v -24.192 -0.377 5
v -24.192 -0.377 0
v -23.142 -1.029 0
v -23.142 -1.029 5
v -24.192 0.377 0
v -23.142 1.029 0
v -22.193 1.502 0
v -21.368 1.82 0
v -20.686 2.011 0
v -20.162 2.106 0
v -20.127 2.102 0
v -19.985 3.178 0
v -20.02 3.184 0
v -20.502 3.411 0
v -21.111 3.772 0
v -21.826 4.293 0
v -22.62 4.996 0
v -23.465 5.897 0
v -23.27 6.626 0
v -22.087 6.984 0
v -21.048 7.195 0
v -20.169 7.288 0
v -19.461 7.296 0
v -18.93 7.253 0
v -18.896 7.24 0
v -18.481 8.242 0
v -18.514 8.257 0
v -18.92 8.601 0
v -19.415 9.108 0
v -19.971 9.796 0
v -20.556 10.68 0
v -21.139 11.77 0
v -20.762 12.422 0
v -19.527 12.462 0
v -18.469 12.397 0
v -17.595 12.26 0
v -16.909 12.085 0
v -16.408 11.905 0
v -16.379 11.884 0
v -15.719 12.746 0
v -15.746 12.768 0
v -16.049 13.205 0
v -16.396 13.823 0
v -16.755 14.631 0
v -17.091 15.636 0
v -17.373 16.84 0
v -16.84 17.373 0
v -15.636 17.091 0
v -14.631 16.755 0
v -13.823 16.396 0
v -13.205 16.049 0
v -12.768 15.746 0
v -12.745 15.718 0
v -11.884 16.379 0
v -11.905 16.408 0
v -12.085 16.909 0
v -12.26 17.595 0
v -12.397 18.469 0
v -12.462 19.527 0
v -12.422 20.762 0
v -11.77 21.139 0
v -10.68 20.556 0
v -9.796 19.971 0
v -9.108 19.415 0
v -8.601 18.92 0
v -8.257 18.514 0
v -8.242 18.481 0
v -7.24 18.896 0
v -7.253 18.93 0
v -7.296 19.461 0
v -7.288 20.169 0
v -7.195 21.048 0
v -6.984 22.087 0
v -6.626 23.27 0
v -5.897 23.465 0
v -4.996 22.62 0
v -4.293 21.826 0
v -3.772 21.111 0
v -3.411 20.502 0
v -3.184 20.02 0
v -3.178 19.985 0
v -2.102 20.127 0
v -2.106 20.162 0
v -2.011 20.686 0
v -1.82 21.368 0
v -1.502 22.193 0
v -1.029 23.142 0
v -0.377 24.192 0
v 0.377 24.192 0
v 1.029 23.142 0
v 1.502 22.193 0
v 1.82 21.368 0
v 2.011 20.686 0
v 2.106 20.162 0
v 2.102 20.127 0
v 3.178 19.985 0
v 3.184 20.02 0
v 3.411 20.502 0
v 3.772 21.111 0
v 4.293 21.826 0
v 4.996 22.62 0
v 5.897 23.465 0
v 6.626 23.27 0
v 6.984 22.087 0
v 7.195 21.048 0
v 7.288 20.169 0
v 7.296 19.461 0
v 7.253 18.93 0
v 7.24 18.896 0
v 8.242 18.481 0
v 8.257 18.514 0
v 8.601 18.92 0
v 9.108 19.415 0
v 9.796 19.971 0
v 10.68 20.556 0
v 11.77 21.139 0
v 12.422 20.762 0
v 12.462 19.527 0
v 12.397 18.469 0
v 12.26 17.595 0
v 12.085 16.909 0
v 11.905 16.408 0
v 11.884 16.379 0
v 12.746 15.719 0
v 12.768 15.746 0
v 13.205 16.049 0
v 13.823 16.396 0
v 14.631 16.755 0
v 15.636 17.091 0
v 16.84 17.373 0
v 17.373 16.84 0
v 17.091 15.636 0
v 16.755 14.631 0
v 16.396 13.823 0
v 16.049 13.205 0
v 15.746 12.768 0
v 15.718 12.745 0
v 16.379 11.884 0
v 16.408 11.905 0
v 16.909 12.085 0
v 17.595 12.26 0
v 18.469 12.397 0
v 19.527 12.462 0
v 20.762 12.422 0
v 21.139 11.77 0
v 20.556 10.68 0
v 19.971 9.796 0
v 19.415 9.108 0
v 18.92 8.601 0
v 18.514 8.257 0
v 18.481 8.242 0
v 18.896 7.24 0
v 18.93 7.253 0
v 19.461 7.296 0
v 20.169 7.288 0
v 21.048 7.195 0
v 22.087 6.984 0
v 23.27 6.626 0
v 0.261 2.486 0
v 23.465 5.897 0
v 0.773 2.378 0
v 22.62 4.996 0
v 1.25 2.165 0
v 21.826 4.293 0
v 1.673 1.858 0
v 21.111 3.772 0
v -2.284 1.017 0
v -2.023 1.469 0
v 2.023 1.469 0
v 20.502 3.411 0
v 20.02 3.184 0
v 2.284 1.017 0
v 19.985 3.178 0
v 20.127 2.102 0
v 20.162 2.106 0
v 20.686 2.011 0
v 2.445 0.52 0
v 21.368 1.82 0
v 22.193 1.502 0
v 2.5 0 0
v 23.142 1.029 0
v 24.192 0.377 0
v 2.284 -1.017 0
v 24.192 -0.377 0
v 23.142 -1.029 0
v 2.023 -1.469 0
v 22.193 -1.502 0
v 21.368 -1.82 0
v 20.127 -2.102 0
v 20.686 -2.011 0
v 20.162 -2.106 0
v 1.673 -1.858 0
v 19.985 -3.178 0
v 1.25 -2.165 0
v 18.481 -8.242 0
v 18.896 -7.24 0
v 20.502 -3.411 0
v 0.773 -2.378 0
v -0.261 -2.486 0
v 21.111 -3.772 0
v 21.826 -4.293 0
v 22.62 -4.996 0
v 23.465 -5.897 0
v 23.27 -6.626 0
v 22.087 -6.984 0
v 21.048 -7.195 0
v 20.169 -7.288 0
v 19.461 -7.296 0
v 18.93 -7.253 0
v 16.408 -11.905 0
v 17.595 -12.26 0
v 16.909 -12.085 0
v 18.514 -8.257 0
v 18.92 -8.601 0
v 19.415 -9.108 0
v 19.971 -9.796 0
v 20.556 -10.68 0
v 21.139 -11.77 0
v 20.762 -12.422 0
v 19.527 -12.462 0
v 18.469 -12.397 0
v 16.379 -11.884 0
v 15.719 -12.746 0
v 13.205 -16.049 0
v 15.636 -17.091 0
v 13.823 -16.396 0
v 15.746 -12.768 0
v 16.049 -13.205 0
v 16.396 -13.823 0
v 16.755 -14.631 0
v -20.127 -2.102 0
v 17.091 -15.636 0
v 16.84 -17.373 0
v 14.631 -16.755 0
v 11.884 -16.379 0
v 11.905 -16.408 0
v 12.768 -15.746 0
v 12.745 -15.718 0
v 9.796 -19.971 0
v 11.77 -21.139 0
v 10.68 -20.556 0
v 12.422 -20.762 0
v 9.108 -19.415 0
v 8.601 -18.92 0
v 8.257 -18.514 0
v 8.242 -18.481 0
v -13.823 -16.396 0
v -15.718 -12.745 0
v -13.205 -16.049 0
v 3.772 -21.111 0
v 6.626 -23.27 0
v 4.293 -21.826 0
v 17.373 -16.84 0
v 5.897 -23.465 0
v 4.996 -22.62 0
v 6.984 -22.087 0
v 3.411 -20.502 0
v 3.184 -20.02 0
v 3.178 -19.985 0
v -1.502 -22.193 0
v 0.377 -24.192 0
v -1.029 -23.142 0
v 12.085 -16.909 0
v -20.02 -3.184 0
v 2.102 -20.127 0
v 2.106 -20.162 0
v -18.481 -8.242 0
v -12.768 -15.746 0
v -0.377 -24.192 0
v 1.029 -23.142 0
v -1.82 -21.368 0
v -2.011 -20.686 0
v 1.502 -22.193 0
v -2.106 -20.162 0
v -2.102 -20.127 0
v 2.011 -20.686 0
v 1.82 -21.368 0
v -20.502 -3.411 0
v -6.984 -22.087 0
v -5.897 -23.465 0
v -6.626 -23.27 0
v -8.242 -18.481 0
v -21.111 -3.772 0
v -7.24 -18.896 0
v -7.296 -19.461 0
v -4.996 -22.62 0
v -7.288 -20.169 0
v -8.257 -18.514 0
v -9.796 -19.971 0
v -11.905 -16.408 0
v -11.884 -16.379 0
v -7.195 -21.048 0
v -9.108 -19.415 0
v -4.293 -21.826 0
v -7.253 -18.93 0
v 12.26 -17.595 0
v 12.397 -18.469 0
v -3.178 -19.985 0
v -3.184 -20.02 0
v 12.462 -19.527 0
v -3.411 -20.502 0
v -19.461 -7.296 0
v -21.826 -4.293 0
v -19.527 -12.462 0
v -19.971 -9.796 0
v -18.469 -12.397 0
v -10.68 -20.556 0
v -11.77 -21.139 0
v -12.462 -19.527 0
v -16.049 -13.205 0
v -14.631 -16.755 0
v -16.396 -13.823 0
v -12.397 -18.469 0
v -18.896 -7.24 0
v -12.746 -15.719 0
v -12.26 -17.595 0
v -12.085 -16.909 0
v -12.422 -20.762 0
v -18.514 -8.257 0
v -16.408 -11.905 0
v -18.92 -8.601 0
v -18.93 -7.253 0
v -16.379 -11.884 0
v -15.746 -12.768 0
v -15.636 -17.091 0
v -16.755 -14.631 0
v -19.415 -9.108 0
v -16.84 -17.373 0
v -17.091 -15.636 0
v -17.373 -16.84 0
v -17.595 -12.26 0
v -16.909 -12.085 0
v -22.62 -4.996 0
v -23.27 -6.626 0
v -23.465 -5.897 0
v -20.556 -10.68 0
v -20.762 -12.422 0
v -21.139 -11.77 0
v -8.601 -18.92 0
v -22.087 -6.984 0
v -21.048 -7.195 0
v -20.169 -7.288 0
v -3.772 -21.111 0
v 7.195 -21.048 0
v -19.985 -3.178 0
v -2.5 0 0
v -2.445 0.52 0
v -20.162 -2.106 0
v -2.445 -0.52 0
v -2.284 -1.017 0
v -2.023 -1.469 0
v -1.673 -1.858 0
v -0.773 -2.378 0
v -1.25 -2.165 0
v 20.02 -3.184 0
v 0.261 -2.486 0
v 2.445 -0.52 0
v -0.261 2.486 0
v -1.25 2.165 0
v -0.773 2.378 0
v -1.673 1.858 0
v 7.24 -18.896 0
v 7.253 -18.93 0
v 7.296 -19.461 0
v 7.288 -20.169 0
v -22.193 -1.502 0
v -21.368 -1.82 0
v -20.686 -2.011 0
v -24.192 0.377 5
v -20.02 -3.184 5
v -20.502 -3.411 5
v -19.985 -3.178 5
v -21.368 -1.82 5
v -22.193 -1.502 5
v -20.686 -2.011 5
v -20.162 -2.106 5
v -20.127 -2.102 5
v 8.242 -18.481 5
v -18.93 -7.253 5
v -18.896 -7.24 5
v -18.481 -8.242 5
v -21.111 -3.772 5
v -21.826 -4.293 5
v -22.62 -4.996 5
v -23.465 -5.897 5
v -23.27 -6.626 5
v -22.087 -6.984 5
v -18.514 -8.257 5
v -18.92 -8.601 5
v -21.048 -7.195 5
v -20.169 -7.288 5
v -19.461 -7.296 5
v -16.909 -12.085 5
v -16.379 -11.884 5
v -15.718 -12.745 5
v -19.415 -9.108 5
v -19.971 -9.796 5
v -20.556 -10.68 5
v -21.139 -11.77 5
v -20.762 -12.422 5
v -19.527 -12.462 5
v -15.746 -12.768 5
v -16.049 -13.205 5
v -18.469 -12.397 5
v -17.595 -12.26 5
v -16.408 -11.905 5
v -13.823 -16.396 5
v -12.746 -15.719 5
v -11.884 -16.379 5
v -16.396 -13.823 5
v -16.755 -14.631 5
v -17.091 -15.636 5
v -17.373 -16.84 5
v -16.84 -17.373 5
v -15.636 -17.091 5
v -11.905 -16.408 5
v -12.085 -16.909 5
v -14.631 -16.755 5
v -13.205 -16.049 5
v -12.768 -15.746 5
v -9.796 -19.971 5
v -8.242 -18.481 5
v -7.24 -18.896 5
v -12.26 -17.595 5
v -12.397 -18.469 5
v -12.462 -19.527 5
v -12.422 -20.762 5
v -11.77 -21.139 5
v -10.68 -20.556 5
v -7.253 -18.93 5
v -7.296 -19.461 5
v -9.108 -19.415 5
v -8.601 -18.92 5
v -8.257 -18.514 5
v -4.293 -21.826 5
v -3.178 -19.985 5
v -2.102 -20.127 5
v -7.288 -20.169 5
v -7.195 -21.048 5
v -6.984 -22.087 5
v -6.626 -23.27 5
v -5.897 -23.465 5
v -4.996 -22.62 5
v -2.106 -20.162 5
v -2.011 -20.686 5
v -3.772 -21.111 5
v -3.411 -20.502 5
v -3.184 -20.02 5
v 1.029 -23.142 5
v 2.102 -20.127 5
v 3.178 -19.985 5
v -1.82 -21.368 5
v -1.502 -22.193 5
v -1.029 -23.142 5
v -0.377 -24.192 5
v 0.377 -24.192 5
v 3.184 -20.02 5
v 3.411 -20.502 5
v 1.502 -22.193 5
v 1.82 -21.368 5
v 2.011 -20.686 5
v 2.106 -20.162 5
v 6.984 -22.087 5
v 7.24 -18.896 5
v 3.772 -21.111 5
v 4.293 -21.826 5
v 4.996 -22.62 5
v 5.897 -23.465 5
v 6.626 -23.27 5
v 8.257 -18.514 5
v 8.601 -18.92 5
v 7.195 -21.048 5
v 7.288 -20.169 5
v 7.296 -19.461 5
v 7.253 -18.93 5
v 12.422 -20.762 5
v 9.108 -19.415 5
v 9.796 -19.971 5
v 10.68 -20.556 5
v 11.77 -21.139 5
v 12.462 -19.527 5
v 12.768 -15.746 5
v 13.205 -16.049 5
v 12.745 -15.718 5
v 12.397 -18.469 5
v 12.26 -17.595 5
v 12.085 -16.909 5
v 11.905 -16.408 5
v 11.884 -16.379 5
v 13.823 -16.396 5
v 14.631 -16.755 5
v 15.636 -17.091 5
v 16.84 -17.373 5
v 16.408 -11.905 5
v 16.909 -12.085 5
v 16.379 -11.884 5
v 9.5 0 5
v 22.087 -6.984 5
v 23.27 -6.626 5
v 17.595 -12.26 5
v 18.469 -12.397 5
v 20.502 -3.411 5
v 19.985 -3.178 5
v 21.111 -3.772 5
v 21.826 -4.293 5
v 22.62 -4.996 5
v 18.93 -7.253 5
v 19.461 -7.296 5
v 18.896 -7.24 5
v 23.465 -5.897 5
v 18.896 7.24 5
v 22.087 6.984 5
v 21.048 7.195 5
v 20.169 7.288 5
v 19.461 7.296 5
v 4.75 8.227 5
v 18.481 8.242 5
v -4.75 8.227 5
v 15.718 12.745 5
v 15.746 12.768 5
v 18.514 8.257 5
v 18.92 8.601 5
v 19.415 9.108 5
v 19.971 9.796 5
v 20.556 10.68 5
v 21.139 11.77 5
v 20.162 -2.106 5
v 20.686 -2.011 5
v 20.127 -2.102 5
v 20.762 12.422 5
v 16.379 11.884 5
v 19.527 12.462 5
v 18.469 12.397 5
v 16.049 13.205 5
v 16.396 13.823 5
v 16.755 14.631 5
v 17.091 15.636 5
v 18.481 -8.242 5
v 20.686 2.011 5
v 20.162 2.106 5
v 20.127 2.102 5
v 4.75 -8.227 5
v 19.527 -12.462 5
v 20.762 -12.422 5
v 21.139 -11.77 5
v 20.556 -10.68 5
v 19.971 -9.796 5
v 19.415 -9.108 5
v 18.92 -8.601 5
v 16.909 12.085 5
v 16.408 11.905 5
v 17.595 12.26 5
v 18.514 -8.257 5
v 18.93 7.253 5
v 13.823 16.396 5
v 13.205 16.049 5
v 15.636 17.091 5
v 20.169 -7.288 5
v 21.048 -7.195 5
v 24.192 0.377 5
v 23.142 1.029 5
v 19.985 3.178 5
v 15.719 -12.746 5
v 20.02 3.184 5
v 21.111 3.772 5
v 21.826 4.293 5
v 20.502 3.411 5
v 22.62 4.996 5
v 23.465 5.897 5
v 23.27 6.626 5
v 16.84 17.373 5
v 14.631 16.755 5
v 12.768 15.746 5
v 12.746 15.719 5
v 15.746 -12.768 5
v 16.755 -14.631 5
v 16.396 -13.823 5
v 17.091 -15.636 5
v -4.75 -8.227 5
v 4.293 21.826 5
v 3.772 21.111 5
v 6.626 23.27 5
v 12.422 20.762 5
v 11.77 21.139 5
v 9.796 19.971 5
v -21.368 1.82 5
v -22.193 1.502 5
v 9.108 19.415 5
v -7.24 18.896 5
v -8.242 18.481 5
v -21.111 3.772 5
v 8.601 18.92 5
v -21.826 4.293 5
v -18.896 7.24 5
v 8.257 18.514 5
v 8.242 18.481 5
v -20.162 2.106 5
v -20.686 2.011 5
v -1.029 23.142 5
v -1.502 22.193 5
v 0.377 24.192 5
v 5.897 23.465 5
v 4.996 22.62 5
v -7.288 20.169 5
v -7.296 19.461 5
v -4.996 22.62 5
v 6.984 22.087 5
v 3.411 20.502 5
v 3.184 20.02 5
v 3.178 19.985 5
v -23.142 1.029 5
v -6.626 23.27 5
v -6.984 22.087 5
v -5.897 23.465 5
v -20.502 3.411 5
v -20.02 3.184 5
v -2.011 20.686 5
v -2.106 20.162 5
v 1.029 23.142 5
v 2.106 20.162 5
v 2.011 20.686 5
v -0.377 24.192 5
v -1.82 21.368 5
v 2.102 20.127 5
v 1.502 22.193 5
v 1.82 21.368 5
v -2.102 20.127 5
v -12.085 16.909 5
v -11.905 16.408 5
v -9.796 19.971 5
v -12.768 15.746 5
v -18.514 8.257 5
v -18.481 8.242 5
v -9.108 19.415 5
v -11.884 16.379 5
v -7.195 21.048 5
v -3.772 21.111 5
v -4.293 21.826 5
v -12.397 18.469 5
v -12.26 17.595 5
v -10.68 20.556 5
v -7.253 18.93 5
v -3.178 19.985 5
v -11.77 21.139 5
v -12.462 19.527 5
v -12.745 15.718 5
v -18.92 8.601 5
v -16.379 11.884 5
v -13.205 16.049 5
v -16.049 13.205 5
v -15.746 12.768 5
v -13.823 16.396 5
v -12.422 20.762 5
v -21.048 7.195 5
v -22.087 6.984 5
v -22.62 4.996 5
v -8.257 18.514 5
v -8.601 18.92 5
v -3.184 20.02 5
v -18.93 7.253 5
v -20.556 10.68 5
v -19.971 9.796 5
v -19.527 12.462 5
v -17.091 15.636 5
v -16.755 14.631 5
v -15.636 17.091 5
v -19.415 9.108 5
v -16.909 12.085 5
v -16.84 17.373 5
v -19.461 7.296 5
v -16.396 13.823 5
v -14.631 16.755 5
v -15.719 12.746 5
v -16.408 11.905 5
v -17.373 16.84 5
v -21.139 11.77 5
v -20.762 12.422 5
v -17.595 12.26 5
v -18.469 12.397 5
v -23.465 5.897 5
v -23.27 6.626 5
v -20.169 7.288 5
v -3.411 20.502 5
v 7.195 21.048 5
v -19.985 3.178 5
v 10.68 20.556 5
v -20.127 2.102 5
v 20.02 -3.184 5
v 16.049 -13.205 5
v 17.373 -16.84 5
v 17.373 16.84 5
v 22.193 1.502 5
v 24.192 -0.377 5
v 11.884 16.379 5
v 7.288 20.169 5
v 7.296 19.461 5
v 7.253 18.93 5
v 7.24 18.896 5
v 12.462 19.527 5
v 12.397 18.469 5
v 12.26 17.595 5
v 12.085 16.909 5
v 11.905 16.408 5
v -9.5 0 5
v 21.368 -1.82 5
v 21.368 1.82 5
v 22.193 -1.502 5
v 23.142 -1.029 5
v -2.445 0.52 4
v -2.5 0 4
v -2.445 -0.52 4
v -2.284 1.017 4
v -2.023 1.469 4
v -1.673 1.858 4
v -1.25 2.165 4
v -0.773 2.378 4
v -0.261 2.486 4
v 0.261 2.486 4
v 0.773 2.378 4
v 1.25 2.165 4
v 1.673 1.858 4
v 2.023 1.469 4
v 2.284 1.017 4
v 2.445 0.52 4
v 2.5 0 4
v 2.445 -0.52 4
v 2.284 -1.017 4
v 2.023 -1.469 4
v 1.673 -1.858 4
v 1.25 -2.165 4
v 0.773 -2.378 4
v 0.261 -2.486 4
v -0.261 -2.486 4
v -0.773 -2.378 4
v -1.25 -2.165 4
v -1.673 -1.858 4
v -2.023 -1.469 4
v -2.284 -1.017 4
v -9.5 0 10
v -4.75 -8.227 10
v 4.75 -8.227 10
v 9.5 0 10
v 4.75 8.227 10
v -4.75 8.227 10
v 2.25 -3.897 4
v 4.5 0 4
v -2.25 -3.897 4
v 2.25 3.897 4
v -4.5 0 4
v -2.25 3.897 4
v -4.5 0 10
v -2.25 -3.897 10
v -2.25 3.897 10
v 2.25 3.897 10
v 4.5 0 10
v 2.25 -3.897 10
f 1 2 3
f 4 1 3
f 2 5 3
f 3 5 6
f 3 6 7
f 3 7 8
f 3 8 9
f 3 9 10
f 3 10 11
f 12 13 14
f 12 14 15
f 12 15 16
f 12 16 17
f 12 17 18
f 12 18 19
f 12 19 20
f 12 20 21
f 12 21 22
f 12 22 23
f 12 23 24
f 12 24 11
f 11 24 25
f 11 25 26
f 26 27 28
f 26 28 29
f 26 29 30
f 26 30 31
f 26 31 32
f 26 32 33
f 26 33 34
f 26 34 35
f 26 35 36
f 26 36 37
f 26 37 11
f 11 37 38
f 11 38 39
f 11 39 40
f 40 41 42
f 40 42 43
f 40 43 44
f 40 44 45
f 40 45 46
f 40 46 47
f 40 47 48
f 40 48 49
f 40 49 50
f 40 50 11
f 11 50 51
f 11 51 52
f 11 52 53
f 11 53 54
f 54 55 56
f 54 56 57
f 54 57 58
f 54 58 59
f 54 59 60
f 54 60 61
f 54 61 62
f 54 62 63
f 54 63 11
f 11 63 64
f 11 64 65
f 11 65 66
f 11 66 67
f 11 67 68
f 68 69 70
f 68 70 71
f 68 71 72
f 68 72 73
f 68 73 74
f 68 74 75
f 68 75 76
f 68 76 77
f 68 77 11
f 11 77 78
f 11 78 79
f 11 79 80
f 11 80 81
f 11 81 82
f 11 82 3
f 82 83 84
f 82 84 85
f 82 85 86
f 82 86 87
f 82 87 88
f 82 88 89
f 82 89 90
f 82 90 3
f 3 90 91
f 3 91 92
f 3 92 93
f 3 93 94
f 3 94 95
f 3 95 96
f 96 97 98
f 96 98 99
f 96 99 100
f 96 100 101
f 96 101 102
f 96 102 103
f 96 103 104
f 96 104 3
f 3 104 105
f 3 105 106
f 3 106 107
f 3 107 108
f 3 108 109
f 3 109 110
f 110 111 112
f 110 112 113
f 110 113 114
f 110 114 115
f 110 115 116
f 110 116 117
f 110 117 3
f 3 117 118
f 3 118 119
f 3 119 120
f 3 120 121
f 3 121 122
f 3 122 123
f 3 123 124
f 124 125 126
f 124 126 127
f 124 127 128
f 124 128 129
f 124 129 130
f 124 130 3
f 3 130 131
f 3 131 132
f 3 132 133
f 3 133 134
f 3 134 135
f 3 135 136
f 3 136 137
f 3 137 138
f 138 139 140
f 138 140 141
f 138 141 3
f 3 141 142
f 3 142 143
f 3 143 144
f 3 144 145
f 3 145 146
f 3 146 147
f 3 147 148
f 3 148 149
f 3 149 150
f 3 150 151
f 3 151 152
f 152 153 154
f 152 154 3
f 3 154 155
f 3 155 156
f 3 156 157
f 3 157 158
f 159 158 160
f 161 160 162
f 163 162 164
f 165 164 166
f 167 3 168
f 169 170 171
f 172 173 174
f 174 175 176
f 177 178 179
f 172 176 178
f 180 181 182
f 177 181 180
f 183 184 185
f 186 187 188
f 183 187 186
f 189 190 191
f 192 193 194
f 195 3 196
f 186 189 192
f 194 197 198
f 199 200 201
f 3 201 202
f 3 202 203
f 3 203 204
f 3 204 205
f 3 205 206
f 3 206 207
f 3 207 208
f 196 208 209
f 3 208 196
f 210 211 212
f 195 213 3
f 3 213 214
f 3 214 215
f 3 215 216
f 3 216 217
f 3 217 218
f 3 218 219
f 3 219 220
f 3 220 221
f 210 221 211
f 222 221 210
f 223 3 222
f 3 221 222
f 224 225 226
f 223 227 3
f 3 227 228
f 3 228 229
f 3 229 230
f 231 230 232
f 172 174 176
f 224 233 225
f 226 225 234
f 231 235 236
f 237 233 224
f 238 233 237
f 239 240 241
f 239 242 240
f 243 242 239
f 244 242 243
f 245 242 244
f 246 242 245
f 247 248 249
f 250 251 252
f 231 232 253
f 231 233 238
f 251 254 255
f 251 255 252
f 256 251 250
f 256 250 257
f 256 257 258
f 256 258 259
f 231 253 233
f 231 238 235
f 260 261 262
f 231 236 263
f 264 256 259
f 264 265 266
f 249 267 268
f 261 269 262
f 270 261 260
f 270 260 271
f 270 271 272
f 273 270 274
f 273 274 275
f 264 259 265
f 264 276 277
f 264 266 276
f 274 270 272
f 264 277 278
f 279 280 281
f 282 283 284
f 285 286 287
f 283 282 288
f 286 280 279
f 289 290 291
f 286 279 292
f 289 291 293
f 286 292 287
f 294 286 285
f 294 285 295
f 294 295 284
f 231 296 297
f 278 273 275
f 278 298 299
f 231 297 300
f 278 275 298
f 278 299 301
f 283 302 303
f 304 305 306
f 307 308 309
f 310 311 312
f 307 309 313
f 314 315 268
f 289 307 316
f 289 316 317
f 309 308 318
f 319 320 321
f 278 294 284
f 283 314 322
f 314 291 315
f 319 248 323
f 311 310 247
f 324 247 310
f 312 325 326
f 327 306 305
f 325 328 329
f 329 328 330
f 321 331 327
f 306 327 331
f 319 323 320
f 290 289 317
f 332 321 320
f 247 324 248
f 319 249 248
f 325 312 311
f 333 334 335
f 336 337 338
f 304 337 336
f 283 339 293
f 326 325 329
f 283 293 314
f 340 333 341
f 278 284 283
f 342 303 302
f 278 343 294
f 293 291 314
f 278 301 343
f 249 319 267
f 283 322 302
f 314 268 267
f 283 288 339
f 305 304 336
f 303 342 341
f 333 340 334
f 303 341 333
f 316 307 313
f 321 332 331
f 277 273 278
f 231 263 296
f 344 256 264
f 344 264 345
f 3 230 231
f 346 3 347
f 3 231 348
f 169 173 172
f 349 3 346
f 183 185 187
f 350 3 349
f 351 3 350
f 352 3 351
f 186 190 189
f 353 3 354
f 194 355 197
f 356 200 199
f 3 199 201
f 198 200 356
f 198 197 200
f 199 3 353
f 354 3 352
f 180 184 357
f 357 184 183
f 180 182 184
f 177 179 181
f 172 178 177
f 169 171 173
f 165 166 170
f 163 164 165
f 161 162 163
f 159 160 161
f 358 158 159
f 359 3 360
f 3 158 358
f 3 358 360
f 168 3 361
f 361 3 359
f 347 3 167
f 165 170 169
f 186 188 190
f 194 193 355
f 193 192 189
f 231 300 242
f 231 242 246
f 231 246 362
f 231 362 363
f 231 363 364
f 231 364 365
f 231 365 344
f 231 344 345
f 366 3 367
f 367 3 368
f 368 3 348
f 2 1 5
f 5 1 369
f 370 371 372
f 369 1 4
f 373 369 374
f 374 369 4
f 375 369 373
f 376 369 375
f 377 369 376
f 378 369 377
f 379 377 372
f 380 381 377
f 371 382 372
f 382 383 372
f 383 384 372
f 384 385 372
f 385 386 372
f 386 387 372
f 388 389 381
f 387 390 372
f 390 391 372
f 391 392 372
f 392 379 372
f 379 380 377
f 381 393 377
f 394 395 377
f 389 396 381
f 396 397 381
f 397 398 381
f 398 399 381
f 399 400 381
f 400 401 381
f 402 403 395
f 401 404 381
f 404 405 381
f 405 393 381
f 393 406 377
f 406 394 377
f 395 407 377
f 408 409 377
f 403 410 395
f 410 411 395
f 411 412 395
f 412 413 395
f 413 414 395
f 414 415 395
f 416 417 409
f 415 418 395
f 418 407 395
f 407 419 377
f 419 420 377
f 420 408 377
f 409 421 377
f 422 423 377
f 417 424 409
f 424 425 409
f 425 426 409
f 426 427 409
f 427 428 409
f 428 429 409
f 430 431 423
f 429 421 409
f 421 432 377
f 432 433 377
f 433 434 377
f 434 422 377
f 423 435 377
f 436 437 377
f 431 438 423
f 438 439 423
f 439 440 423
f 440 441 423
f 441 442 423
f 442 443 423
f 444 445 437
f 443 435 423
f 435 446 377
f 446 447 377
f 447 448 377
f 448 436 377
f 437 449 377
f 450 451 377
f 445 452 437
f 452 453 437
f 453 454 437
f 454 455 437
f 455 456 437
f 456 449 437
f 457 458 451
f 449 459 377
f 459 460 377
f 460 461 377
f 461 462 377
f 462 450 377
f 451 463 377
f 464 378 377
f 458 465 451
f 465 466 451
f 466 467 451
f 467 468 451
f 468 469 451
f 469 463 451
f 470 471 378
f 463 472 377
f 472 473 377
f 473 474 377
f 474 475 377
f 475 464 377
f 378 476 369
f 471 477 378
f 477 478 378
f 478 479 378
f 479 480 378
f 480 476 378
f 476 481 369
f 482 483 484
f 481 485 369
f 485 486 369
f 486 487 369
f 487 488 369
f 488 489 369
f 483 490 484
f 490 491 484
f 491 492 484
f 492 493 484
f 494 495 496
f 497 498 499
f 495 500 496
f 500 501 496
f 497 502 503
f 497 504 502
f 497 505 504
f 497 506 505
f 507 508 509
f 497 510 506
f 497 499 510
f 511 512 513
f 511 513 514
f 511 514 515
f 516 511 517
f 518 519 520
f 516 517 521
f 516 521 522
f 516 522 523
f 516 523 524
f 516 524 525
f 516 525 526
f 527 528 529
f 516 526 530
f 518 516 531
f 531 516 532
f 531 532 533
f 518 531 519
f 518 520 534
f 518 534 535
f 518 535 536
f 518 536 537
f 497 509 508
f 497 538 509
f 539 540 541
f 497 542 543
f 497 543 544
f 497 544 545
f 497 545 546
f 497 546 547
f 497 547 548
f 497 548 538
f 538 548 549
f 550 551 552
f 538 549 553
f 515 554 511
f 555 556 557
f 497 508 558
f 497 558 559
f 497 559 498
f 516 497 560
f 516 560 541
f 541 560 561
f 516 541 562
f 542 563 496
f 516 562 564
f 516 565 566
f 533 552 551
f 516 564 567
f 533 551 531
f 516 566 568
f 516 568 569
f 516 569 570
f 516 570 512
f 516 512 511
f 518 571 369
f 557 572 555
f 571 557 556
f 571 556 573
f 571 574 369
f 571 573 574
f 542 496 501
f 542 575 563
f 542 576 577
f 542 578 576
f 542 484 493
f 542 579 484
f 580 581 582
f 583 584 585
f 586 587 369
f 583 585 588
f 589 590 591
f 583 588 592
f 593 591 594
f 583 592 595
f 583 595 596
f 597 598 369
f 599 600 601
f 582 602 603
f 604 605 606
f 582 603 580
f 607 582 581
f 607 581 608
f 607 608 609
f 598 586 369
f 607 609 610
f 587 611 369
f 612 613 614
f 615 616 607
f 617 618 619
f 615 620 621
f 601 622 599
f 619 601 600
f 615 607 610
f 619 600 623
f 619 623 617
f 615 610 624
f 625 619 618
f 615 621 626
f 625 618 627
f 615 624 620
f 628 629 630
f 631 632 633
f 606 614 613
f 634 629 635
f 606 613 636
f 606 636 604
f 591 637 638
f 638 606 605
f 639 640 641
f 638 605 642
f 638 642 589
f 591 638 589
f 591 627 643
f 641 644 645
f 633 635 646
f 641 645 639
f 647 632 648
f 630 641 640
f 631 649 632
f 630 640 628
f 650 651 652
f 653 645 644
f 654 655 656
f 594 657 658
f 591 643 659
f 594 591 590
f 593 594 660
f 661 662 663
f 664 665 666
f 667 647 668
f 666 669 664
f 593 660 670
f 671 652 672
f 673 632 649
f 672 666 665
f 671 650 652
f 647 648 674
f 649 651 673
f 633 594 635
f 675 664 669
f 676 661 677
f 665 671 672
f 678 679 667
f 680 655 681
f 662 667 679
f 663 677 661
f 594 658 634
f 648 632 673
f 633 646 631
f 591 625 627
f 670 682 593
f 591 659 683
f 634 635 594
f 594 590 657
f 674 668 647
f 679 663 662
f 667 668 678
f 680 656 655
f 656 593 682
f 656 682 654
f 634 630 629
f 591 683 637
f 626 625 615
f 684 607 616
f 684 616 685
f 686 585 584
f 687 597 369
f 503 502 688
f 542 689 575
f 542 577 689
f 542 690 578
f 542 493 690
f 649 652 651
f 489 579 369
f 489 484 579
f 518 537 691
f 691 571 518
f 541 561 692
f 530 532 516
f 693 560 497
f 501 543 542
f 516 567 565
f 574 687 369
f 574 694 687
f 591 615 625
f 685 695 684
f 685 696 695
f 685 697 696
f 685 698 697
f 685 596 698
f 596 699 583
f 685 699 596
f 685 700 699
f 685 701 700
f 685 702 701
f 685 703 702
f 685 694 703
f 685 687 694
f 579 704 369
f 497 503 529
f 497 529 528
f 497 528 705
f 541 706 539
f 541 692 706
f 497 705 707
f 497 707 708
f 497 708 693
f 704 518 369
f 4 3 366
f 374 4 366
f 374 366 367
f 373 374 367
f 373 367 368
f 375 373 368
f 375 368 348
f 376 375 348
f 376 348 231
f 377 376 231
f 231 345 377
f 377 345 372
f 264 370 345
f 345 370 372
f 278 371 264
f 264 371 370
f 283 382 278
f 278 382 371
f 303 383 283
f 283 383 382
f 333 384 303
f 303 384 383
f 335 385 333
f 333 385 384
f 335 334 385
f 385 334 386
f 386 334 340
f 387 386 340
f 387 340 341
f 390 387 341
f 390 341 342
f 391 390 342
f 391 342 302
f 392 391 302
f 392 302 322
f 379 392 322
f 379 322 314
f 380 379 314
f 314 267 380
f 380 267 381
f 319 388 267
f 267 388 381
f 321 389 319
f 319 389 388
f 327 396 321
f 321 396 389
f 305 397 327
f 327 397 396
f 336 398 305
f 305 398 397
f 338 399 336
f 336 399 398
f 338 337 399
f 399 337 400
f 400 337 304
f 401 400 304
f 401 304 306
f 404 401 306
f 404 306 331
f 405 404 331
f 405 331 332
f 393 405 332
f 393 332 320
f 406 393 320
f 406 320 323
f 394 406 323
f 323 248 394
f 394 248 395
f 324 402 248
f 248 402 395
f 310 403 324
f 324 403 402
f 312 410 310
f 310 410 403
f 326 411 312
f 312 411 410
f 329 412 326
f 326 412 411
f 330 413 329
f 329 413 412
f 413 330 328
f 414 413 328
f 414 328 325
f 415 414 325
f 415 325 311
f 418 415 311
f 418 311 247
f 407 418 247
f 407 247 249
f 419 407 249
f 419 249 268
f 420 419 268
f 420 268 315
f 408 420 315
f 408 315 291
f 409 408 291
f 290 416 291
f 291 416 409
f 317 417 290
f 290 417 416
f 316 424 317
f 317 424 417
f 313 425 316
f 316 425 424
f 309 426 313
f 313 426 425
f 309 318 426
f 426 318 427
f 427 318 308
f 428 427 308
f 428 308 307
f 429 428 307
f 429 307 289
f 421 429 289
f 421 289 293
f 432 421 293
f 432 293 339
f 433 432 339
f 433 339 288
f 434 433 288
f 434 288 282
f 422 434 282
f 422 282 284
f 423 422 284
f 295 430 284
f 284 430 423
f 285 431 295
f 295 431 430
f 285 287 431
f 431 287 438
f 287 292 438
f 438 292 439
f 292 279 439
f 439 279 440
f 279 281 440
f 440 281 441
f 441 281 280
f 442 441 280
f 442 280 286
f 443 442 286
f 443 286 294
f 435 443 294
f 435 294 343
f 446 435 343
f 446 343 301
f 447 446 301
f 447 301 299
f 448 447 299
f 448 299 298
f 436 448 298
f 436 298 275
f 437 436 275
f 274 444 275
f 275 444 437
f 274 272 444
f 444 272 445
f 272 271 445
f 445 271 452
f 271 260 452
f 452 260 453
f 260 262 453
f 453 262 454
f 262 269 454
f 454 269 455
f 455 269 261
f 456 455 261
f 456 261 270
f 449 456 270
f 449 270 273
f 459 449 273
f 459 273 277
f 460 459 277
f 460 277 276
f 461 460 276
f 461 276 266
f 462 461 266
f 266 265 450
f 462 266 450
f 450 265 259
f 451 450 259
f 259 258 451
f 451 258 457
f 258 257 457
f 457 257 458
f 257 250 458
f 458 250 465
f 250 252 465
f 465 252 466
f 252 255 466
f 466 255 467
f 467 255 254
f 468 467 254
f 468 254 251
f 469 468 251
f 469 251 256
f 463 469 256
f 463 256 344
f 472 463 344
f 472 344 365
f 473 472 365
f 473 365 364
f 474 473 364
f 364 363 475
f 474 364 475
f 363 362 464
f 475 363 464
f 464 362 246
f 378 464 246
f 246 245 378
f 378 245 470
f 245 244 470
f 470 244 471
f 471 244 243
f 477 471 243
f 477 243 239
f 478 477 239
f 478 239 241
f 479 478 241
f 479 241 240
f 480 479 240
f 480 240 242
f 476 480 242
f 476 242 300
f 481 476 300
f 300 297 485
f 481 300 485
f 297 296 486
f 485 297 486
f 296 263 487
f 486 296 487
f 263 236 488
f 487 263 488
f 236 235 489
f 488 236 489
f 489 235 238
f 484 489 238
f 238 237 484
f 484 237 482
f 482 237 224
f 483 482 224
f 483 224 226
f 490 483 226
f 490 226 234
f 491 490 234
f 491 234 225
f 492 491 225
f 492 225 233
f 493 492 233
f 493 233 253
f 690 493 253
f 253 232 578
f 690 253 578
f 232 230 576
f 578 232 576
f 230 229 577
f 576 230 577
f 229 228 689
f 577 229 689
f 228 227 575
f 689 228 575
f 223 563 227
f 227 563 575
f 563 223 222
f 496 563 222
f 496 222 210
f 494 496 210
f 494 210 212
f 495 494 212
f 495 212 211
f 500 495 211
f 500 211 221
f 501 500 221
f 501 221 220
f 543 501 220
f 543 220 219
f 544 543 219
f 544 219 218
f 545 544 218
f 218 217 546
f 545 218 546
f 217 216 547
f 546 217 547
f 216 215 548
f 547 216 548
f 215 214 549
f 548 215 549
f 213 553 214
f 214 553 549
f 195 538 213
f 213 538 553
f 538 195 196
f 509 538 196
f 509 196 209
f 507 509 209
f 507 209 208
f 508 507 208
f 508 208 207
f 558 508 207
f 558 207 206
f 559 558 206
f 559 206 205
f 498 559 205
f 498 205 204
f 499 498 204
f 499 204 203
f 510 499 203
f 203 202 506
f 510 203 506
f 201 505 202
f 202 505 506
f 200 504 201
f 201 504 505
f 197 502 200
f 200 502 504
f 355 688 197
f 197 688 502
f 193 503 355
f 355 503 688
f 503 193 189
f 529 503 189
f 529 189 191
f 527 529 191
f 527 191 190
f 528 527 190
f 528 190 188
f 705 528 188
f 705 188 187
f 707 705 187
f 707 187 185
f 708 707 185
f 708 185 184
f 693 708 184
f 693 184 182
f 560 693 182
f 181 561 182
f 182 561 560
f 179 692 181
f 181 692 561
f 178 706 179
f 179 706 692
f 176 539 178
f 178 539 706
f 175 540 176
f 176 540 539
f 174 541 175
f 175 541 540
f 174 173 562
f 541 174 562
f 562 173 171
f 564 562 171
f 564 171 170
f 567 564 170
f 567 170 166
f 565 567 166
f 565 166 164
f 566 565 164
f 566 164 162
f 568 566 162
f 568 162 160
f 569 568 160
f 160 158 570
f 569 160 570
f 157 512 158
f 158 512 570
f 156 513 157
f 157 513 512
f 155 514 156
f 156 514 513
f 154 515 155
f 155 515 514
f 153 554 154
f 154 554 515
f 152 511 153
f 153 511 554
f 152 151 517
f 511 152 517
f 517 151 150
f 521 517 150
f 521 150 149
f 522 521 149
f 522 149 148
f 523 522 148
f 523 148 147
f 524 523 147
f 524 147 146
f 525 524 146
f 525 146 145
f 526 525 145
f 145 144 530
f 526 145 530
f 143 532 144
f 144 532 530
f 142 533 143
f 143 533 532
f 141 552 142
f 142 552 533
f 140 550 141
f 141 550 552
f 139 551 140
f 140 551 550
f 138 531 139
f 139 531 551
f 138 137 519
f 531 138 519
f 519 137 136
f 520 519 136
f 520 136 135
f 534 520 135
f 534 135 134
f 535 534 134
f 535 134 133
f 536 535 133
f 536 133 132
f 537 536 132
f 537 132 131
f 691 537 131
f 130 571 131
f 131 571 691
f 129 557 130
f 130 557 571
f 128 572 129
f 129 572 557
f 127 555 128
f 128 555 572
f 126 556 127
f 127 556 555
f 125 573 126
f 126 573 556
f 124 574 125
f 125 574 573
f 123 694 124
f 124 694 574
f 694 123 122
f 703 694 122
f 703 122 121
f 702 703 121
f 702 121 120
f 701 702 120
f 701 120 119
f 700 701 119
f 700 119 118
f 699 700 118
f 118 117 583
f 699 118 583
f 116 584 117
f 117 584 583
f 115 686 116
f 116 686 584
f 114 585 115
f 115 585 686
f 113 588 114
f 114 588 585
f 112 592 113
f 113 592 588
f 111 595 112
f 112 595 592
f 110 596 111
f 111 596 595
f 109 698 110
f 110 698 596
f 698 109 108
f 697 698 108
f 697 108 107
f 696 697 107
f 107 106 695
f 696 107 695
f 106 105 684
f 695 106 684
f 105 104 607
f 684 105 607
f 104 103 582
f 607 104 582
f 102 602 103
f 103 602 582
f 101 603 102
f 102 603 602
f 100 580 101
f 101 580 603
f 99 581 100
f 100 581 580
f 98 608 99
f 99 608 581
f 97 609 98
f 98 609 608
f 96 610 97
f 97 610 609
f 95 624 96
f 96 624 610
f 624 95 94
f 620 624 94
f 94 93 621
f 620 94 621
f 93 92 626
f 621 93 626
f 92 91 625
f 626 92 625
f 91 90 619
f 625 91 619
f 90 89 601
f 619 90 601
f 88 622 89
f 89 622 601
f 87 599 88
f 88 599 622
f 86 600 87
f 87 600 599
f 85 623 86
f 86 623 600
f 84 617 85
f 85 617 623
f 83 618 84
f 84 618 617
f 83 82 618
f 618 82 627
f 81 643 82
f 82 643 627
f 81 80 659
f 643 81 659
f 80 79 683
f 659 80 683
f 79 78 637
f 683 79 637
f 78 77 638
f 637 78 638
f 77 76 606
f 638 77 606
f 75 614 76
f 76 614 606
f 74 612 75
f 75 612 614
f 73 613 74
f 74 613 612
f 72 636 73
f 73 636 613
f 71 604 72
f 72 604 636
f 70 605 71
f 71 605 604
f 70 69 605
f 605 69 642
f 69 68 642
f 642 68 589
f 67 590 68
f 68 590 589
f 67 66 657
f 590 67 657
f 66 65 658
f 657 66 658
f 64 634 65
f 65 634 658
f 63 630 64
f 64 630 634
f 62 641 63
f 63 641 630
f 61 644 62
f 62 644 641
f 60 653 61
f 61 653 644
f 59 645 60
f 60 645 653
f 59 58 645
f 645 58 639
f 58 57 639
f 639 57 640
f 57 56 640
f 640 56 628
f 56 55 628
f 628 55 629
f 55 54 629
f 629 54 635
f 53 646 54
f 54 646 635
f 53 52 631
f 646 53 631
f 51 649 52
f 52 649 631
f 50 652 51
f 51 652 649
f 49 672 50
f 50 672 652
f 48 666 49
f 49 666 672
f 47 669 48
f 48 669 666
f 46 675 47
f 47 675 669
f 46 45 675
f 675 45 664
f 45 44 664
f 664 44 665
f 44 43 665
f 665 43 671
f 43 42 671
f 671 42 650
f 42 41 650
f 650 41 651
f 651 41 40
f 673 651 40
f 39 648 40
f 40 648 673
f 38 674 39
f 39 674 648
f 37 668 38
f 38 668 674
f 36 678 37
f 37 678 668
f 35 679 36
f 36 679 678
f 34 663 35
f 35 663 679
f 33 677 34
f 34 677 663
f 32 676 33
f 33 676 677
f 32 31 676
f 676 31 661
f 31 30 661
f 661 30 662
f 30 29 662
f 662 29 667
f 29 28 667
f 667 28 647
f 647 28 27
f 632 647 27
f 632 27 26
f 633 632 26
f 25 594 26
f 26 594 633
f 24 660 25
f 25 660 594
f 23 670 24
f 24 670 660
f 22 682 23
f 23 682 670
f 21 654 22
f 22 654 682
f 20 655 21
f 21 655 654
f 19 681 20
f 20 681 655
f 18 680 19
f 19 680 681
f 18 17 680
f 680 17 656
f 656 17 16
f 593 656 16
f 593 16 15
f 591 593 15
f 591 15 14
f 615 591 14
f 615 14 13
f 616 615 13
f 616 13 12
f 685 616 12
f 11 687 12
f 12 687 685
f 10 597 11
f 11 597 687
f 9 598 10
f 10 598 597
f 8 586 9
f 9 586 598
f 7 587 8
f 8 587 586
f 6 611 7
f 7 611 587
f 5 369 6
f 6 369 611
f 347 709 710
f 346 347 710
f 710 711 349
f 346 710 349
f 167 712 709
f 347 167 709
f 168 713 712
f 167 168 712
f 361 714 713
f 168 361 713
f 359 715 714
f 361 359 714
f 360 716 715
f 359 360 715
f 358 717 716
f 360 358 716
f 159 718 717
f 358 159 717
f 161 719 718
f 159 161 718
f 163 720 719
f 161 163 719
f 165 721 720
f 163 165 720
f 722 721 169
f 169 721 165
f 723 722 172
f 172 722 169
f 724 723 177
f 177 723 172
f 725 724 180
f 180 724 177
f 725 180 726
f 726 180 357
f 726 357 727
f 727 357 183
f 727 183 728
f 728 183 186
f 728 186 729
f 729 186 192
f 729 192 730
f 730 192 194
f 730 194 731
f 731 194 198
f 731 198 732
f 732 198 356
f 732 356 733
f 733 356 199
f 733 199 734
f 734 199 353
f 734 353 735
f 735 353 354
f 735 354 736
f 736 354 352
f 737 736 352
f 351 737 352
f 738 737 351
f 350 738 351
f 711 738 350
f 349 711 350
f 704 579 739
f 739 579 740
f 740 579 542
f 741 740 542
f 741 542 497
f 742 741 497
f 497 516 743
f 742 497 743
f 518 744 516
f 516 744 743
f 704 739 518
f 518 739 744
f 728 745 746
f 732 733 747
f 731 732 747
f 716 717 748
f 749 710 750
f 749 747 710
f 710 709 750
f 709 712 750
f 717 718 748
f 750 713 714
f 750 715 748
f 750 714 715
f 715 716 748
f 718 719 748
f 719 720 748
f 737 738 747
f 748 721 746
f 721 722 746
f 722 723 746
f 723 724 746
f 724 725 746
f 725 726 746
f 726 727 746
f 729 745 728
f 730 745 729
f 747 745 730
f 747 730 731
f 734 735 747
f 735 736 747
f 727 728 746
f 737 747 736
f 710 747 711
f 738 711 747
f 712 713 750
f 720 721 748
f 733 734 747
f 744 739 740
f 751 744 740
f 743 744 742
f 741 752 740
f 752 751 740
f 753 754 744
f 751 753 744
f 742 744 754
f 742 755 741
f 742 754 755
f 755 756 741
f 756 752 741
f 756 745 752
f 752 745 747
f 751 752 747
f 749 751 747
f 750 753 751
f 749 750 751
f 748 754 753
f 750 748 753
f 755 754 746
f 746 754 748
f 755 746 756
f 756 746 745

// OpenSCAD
// PRUSA iteration3
// NEMA 17 extruder big gear
// GNU GPL v3
// Josef Průša <iam@josefprusa.cz> and contributors
// http://www.reprap.org/wiki/Prusa_Mendel
// http://prusamendel.org


include <inc/external_gear_script.scad>;

module big_gear()
{
	translate ([0,0,0])
	difference(){
		union(){
			gear (
		number_of_teeth=24,
		circular_pitch=335,
		rim_thickness=5,
		bore_diameter=4.8);
		translate ([0,0,4]) cylinder(r=19/2, h=6, $fn=6);}
		translate ([0,0,4]) cylinder(r=9/2, h=7, $fn=6);

		translate ([0,0,-1]) cylinder(r=5/2, h=7, $fn=30);
	}

}
big_gear();
